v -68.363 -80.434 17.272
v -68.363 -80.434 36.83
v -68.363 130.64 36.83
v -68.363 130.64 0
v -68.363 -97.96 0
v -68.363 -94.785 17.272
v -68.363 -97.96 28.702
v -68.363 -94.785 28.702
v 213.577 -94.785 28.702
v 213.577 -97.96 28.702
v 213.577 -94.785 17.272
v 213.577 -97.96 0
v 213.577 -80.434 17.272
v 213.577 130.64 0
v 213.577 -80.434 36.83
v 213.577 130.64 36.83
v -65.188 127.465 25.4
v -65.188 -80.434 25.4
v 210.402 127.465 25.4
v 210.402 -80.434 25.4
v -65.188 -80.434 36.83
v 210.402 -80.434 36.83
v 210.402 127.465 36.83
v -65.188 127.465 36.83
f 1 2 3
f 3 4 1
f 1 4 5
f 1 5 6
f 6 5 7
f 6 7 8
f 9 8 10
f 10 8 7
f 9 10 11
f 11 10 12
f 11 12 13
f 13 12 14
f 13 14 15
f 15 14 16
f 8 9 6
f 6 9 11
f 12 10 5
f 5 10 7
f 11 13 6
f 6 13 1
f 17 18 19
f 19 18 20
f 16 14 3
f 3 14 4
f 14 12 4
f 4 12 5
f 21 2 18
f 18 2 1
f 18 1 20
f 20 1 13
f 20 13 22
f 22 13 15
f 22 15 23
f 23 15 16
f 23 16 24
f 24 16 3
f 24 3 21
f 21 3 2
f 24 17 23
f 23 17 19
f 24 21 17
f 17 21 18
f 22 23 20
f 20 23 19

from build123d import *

# Parameters (mm, degrees)
SKETCH1_W            = 281.94
SKETCH1_H            = 228.6
BOSS_EXTRUDE2_DEPTH  = 25.4
SKETCH3_W            = 281.94
SKETCH3_H            = 17.526
CUT_EXTRUDE1_DEPTH   = 8.128
SKETCH4_W            = 11.43
SKETCH4_H            = 211.074
BOSS_EXTRUDE4_DEPTH  = 3.175
SKETCH5_W            = 278.765
SKETCH5_H            = 11.43
BOSS_EXTRUDE9_DEPTH  = 3.175
SKETCH9_W            = 11.43
SKETCH9_H            = 207.899
BOSS_EXTRUDE10_DEPTH = 3.175
SKETCH8_W            = 281.94
SKETCH8_H            = 11.43
BOSS_EXTRUDE11_DEPTH = 3.175


with BuildPart() as part:
    # Sketch1 → Boss-Extrude2 (new body)
    with BuildSketch(Plane.XY):
        with Locations((72.606829268, 16.339634146)):
            Rectangle(SKETCH1_W, SKETCH1_H)
    extrude(amount=BOSS_EXTRUDE2_DEPTH)

    # Sketch3 → Cut-Extrude1 (cut)
    with BuildSketch(Plane.XY.offset(25.4)):
        with Locations((72.606829268, -89.197365854)):
            Rectangle(SKETCH3_W, SKETCH3_H)
    extrude(amount=-CUT_EXTRUDE1_DEPTH, mode=Mode.SUBTRACT)



with BuildPart() as body_2:
    # Sketch4 → Boss-Extrude4 (new body)
    with BuildSketch(Plane.ZY.offset(68.363170732)):
        with Locations((31.115, 25.102634146)):
            Rectangle(SKETCH4_W, SKETCH4_H)
    extrude(amount=-BOSS_EXTRUDE4_DEPTH)


with BuildPart() as part_1:
    add(part.part)

    add(body_2.part)  # Boss-Extrude9 merges body 2
    # Sketch5 → Boss-Extrude9 (add)
    with BuildSketch(Plane(origin=(0, 130.639634146, 0), x_dir=(1, 0, 0), z_dir=(0, 1, 0))):
        with Locations((74.194329268, -31.115)):
            Rectangle(SKETCH5_W, SKETCH5_H)
    extrude(amount=-BOSS_EXTRUDE9_DEPTH)

    # Sketch9 → Boss-Extrude10 (add)
    with BuildSketch(Plane(origin=(213.576829268, 0, 0), x_dir=(0, 0, -1), z_dir=(1, 0, 0))):
        with Locations((-31.115, 23.515134146)):
            Rectangle(SKETCH9_W, SKETCH9_H)
    extrude(amount=-BOSS_EXTRUDE10_DEPTH)


with BuildPart() as body_2_2:
    # Sketch8 → Boss-Extrude11 (new body)
    with BuildSketch(Plane.XZ.offset(97.960365854)):
        with Locations((72.606829268, 22.987)):
            Rectangle(SKETCH8_W, SKETCH8_H)
    extrude(amount=-BOSS_EXTRUDE11_DEPTH)

    # Combine1: union part
    add(part_1.part)


solid = body_2_2.part
